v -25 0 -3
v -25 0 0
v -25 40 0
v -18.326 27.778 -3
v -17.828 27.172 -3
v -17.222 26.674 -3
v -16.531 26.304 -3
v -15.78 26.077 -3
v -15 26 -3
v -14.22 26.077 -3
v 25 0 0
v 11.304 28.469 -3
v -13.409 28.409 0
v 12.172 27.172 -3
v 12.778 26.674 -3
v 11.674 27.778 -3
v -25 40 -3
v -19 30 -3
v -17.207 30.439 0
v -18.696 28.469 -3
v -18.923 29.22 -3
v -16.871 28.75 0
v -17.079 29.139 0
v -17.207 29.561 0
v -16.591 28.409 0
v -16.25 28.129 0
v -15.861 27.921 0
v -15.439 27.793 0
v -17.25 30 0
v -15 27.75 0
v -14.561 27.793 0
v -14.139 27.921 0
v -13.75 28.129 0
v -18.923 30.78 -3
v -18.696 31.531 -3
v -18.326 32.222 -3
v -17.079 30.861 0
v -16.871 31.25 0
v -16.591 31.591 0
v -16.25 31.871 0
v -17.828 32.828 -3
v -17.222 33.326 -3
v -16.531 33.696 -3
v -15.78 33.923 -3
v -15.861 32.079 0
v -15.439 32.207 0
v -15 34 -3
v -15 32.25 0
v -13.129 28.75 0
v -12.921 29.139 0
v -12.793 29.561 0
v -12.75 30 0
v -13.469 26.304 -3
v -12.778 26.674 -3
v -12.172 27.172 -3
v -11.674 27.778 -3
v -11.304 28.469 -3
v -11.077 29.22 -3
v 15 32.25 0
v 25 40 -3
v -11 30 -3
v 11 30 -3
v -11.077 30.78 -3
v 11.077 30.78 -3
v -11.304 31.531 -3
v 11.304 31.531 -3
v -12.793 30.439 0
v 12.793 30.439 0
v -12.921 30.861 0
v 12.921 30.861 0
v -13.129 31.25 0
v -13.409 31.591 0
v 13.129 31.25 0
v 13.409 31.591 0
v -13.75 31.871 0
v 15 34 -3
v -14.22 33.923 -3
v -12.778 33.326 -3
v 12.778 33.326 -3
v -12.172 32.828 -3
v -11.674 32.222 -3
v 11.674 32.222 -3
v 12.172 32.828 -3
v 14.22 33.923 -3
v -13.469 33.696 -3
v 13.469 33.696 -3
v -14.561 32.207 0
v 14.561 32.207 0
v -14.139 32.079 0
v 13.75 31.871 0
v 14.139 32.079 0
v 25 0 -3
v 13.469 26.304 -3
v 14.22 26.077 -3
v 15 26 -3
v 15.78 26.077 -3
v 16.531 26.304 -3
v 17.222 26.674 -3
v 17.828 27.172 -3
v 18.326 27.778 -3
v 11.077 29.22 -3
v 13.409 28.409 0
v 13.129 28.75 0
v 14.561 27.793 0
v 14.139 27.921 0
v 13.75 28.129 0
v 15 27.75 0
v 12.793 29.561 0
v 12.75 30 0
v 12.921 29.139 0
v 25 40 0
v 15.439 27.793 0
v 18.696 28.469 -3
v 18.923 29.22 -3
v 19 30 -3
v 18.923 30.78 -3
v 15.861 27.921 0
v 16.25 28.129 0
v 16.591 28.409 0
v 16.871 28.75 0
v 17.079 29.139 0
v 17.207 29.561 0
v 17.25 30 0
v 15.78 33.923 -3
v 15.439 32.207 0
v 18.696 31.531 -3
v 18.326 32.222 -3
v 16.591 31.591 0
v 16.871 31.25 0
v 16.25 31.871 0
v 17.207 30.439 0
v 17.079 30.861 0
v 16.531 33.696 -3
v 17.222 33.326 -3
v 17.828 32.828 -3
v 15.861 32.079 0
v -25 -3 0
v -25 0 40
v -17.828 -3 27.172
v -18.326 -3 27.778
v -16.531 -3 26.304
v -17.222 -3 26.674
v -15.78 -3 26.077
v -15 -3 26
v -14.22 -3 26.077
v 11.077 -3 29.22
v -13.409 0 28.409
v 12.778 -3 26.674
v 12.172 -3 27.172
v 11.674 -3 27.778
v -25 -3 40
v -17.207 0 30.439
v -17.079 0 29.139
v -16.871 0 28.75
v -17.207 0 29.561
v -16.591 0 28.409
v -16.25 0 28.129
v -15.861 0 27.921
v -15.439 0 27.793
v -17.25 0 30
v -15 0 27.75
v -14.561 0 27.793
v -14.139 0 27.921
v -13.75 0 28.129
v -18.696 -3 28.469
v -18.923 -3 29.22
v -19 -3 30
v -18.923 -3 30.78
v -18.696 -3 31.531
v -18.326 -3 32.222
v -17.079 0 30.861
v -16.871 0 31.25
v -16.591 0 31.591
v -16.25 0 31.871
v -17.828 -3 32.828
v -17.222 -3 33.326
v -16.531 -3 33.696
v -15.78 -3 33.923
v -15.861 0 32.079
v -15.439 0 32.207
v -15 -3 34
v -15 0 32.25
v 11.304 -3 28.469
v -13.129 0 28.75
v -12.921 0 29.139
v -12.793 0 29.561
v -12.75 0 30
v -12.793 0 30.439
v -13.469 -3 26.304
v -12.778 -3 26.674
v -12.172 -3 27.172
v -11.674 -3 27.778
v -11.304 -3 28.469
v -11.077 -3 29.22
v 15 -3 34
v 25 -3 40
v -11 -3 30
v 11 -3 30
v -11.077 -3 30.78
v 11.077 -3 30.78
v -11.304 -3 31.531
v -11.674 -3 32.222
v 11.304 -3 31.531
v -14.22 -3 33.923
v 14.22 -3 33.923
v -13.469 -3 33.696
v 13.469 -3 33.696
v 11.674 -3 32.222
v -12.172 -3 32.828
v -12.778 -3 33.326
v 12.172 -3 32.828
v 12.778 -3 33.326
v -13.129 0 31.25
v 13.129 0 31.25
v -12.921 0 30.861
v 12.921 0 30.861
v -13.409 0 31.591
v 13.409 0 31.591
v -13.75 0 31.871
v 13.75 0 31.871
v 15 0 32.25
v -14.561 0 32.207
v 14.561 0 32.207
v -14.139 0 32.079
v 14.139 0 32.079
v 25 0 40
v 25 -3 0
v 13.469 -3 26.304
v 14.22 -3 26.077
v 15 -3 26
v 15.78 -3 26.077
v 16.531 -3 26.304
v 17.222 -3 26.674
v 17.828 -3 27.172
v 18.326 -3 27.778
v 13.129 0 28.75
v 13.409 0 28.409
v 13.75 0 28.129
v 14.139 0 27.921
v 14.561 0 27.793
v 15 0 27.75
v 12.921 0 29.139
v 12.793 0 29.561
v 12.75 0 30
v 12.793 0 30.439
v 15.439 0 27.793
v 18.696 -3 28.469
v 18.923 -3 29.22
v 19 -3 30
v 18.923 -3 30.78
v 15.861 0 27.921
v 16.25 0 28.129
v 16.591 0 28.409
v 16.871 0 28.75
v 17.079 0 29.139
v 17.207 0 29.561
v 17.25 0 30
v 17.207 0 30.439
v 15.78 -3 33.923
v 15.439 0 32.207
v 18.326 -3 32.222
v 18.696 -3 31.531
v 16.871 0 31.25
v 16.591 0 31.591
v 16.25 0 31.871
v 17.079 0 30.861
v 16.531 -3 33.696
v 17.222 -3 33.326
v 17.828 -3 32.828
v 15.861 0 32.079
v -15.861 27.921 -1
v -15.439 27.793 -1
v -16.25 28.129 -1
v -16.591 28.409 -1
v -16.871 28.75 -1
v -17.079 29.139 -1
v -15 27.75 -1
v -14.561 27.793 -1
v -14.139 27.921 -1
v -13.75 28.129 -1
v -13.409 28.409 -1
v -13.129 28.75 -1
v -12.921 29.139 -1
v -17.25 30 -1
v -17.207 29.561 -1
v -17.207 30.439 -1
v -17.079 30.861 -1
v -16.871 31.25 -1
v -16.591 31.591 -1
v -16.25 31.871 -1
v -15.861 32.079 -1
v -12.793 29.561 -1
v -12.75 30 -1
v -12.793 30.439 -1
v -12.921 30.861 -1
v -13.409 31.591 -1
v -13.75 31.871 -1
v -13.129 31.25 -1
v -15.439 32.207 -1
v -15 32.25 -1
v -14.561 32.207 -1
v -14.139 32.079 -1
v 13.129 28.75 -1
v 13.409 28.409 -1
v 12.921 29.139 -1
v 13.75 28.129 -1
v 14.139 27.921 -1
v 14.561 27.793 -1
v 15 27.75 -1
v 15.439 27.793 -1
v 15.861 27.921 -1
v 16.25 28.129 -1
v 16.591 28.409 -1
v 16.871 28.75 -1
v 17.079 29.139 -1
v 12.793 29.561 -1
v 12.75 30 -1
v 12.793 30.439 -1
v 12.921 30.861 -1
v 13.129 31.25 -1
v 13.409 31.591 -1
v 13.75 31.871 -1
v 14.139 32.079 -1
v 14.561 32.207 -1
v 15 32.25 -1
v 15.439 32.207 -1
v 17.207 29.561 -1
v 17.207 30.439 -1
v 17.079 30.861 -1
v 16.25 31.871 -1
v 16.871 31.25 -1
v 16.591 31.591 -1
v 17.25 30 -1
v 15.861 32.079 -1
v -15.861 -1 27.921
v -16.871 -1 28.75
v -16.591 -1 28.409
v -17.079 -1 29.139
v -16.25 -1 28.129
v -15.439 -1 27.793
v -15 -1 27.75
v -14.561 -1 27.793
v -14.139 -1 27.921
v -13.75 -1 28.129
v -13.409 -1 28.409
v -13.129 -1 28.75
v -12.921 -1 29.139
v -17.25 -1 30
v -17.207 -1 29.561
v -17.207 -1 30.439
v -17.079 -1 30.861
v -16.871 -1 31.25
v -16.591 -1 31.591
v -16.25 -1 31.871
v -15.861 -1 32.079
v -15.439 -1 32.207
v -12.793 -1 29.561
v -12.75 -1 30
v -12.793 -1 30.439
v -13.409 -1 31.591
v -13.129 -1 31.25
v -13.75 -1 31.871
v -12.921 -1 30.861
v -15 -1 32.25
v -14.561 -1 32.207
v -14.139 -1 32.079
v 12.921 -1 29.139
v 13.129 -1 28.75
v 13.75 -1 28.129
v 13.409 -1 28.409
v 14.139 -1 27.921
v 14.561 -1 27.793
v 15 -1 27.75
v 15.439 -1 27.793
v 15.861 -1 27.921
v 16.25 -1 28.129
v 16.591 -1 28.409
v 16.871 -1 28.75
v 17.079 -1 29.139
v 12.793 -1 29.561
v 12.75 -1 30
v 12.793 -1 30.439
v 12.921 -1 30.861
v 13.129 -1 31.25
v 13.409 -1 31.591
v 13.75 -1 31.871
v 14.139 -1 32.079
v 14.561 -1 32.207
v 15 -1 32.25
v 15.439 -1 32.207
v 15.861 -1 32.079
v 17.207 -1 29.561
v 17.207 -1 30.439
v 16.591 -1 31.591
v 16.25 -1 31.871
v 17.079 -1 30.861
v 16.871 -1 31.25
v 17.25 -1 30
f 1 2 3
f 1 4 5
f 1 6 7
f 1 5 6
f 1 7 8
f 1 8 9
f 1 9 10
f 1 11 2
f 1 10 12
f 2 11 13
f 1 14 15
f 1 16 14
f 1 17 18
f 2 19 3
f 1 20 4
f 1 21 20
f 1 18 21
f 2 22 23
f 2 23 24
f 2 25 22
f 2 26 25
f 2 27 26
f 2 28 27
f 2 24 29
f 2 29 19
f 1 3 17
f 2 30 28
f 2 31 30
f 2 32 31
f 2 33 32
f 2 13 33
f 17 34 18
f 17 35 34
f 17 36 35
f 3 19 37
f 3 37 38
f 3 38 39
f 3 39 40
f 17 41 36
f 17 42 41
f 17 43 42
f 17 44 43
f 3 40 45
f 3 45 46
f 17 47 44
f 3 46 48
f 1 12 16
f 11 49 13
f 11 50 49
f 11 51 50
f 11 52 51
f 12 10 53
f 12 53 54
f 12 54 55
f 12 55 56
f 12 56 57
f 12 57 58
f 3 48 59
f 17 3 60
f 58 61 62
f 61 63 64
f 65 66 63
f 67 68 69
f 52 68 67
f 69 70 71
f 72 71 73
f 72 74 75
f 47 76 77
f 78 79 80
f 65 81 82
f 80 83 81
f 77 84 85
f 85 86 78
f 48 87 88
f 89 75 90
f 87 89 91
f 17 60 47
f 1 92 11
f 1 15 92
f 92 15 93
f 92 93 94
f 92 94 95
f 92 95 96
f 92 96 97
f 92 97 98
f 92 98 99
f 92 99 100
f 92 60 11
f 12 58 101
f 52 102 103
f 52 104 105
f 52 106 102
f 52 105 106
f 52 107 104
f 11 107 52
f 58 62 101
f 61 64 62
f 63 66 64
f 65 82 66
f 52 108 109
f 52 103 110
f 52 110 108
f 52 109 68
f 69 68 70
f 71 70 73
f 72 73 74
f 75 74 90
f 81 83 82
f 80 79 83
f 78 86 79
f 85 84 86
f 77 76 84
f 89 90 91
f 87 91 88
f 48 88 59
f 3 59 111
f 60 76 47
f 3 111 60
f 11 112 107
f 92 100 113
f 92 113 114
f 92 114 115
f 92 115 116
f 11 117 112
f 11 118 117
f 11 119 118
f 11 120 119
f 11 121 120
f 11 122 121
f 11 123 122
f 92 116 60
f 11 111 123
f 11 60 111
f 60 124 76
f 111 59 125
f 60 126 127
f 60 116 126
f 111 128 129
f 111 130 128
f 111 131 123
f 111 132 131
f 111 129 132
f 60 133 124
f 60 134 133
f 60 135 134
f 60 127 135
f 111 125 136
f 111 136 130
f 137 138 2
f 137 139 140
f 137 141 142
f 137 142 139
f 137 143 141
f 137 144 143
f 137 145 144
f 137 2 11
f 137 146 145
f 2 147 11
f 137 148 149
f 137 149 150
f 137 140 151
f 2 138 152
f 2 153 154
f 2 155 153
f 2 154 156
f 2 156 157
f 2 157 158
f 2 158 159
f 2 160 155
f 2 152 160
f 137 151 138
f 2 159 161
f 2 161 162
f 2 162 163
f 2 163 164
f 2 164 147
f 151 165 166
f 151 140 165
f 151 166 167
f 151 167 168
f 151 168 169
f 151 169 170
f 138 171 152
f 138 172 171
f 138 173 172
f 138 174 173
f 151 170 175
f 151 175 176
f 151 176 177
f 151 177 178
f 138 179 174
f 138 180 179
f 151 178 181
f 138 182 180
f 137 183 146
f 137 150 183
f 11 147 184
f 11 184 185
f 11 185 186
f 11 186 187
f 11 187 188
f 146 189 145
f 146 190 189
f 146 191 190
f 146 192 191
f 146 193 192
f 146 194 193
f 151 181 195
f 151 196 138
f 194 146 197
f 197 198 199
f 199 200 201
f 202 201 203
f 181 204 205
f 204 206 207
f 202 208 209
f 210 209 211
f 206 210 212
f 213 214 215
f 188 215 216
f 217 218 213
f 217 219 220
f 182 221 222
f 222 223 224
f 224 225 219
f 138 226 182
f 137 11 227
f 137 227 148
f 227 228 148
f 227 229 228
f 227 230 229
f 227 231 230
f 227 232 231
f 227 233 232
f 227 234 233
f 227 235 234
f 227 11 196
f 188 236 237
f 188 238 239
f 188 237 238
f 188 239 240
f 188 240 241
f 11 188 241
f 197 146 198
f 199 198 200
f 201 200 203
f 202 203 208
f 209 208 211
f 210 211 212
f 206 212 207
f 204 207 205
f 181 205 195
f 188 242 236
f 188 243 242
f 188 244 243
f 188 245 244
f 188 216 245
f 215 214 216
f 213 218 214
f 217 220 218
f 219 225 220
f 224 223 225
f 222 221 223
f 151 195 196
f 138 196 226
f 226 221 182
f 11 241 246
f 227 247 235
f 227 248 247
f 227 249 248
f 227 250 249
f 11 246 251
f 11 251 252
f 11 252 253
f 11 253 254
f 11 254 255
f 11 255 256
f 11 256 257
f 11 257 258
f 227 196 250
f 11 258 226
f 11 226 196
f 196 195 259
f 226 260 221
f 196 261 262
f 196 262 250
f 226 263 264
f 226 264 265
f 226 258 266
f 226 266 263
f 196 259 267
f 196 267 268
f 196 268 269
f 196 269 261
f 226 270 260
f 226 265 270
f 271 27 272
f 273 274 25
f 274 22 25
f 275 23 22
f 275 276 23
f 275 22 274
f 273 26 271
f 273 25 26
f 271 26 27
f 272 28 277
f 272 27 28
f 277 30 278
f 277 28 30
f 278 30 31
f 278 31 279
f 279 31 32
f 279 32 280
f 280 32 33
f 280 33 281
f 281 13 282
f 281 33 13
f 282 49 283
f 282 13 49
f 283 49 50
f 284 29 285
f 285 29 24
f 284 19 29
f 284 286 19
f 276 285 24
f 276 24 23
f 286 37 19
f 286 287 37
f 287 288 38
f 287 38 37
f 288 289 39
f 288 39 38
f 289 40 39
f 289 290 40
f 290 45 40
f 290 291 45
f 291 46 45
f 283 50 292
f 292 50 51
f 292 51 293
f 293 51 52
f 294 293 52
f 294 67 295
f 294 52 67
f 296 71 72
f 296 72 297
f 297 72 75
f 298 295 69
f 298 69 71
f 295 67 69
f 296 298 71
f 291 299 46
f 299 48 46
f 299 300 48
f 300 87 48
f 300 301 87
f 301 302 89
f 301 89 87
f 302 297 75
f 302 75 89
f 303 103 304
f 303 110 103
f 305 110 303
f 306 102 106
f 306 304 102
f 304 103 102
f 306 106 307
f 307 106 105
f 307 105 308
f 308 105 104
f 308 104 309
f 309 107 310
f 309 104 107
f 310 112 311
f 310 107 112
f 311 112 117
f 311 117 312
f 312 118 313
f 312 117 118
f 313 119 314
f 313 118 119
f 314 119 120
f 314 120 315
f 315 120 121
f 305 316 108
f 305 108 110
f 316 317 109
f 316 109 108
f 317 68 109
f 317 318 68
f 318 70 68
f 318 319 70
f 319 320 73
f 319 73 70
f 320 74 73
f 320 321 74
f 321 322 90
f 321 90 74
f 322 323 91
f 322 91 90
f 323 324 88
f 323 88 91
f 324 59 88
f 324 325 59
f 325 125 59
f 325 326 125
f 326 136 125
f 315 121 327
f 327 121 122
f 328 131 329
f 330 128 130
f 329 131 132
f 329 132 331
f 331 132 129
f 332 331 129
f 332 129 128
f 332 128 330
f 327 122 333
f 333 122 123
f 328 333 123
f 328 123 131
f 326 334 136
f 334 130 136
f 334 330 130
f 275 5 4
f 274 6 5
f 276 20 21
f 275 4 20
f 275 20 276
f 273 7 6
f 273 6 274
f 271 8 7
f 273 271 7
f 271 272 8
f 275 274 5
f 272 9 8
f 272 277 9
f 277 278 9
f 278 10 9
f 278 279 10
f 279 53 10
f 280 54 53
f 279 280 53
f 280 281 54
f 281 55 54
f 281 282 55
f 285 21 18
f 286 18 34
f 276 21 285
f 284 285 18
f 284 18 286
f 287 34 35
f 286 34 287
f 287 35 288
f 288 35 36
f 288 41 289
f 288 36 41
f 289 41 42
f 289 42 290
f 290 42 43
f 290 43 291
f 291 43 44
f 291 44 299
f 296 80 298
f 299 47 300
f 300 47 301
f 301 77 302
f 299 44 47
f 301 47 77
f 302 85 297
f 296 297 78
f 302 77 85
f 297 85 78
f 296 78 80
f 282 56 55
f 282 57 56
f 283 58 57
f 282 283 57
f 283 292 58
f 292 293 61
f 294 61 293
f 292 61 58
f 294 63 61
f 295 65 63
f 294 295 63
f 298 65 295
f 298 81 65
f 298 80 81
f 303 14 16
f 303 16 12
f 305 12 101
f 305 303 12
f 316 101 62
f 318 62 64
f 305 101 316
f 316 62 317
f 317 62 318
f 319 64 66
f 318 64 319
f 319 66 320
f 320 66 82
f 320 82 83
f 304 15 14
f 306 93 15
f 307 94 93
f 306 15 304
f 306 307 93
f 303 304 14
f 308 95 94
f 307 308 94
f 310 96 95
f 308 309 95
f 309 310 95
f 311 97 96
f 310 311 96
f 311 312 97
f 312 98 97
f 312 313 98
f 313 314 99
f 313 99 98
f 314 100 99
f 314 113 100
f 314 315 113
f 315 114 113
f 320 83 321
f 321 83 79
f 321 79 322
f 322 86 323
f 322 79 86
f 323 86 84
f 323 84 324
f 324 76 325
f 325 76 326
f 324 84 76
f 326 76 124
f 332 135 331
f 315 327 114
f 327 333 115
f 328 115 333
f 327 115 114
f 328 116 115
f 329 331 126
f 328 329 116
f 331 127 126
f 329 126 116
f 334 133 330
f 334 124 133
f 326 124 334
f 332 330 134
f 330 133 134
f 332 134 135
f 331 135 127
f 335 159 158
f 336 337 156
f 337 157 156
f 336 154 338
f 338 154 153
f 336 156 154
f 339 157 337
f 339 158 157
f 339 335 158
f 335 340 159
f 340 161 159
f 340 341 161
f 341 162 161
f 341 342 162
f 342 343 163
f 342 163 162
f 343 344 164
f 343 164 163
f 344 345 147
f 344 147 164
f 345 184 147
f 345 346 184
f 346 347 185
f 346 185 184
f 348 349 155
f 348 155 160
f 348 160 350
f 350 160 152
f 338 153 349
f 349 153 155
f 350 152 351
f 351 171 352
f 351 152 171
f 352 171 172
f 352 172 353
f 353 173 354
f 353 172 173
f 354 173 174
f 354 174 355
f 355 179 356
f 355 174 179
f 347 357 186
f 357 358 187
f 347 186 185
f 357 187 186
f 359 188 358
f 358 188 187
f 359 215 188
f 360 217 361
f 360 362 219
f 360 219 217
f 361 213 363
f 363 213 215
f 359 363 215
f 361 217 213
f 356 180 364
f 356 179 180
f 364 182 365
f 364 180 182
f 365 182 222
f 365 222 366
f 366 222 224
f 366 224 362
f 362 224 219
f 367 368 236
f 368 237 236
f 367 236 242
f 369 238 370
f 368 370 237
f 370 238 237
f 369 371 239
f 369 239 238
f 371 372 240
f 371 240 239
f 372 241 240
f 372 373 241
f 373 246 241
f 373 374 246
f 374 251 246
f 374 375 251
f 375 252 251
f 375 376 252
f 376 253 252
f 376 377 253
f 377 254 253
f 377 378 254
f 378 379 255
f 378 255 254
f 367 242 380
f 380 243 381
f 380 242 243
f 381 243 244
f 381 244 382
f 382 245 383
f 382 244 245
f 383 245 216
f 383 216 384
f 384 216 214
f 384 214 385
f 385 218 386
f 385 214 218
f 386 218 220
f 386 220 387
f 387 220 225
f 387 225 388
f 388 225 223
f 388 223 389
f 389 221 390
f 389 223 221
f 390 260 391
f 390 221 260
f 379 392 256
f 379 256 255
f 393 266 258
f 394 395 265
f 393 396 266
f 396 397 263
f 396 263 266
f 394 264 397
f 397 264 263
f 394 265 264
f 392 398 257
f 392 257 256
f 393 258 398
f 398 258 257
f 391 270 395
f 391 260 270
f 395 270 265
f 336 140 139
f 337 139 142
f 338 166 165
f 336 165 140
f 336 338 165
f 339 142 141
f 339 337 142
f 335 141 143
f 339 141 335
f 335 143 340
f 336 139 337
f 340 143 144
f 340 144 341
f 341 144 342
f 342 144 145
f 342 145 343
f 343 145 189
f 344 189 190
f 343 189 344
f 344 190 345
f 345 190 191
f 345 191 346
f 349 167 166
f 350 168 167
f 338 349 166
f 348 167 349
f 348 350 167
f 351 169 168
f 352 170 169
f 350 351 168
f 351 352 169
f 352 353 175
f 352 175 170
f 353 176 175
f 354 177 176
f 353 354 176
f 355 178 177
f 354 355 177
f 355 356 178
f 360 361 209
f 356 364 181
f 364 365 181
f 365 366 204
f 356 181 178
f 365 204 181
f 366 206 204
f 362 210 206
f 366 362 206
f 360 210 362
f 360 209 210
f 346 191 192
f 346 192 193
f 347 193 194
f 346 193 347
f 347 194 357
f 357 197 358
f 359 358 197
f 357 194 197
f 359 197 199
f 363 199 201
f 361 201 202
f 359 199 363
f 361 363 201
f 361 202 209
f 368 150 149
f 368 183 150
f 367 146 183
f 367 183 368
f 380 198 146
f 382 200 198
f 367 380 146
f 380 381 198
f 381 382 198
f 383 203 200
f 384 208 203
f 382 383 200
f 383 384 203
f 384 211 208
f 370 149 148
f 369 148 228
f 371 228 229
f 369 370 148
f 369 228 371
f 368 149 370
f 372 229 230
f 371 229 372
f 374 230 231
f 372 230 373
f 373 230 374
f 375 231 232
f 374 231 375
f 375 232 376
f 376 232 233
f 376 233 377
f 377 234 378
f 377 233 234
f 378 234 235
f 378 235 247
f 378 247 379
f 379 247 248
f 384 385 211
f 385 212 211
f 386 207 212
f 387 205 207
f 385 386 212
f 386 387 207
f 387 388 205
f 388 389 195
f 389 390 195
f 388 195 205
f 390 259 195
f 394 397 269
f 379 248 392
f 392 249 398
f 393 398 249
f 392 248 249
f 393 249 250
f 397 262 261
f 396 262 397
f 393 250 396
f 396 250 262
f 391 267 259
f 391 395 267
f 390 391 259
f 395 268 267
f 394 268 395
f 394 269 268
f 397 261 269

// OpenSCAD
// L-Bracket

// Parameters
w = 50;   // width (X)
hf = 40;  // horizontal flange depth (Y)
vf = 40;  // vertical flange height (Z)
t = 3;    // thickness

// Hole parameters
hole_d = 4.5;
cs_d = 8;
cs_depth = 2;
hole_offset_edge = 10;  // from edge along flange direction
hole_offset_side = w/2 - (w/4); // left/right: symmetric, at w/4 from center each side
// holes at X = -w/4 and X = +w/4 ... actually "left-right symmetric, 2 holes"
// Let's place at X = ±(w/2 - 10) ... no, "center line, left-right symmetric 2 holes"
// "各面の中心線上で、面の縁から10mm内側、左右対称に2個"
// I'll interpret: along width, symmetric about center, at X = ±(w/4) 
// Actually let's use X = ±(w/2 - 10) for nice placement
hx1 = -(w/2 - 10);
hx2 =  (w/2 - 10);

module countersunk_hole_vertical(depth_total) {
    // hole along Z, countersink at top (Z = depth_total, i.e., outside face going down)
    // Used for horizontal flange: outside is -Z face
    union() {
        cylinder(h = depth_total, d = hole_d, $fn=32);
        translate([0, 0, -cs_depth])
            cylinder(h = cs_depth + 0.01, d1 = cs_d, d2 = hole_d, $fn=32);
    }
}

module countersunk_hole_horizontal(depth_total) {
    // hole along Y, countersink at -Y face (outside of vertical flange)
    union() {
        cylinder(h = depth_total, d = hole_d, $fn=32);
        cylinder(h = cs_depth, d1 = cs_d, d2 = hole_d, $fn=32);
    }
}

difference() {
    union() {
        // Horizontal flange: extends in +Y, lies in XY plane, thickness in Z (0 to -t)
        translate([-w/2, 0, -t])
            cube([w, hf, t]);
        
        // Vertical flange: extends in +Z, lies in XZ plane, thickness in Y (0 to -t)  
        // Wait: inner corner at origin, vertical goes +Z, horizontal goes +Y
        // Vertical flange: X from -w/2 to w/2, Z from 0 to vf, Y from -t to 0
        translate([-w/2, -t, 0])
            cube([w, t, vf]);
    }
    
    // Holes in horizontal flange (along Z)
    // Outside face is at Z = -t (bottom), countersink opens downward
    // Holes at Y = hf - 10 (10mm from far edge), X = hx1, hx2
    for (hx = [hx1, hx2]) {
        translate([hx, hf - hole_offset_edge, 0]) {
            // drill from Z=0 down to Z=-t
            translate([0, 0, -t])
                union() {
                    cylinder(h = t, d = hole_d, $fn=32);
                    // countersink at bottom (outside = -t face)
                    cylinder(h = cs_depth, d1 = cs_d, d2 = hole_d, $fn=32);
                }
        }
    }
    
    // Holes in vertical flange (along Y)
    // Outside face is at Y = -t, countersink opens outward (-Y direction)
    // Holes at Z = vf - 10, X = hx1, hx2
    for (hx = [hx1, hx2]) {
        translate([hx, -t, vf - hole_offset_edge]) {
            rotate([-90, 0, 0]) {
                cylinder(h = t, d = hole_d, $fn=32);
                // countersink at start (Y = -t face, outside)
                cylinder(h = cs_depth, d1 = cs_d, d2 = hole_d, $fn=32);
            }
        }
    }
}
